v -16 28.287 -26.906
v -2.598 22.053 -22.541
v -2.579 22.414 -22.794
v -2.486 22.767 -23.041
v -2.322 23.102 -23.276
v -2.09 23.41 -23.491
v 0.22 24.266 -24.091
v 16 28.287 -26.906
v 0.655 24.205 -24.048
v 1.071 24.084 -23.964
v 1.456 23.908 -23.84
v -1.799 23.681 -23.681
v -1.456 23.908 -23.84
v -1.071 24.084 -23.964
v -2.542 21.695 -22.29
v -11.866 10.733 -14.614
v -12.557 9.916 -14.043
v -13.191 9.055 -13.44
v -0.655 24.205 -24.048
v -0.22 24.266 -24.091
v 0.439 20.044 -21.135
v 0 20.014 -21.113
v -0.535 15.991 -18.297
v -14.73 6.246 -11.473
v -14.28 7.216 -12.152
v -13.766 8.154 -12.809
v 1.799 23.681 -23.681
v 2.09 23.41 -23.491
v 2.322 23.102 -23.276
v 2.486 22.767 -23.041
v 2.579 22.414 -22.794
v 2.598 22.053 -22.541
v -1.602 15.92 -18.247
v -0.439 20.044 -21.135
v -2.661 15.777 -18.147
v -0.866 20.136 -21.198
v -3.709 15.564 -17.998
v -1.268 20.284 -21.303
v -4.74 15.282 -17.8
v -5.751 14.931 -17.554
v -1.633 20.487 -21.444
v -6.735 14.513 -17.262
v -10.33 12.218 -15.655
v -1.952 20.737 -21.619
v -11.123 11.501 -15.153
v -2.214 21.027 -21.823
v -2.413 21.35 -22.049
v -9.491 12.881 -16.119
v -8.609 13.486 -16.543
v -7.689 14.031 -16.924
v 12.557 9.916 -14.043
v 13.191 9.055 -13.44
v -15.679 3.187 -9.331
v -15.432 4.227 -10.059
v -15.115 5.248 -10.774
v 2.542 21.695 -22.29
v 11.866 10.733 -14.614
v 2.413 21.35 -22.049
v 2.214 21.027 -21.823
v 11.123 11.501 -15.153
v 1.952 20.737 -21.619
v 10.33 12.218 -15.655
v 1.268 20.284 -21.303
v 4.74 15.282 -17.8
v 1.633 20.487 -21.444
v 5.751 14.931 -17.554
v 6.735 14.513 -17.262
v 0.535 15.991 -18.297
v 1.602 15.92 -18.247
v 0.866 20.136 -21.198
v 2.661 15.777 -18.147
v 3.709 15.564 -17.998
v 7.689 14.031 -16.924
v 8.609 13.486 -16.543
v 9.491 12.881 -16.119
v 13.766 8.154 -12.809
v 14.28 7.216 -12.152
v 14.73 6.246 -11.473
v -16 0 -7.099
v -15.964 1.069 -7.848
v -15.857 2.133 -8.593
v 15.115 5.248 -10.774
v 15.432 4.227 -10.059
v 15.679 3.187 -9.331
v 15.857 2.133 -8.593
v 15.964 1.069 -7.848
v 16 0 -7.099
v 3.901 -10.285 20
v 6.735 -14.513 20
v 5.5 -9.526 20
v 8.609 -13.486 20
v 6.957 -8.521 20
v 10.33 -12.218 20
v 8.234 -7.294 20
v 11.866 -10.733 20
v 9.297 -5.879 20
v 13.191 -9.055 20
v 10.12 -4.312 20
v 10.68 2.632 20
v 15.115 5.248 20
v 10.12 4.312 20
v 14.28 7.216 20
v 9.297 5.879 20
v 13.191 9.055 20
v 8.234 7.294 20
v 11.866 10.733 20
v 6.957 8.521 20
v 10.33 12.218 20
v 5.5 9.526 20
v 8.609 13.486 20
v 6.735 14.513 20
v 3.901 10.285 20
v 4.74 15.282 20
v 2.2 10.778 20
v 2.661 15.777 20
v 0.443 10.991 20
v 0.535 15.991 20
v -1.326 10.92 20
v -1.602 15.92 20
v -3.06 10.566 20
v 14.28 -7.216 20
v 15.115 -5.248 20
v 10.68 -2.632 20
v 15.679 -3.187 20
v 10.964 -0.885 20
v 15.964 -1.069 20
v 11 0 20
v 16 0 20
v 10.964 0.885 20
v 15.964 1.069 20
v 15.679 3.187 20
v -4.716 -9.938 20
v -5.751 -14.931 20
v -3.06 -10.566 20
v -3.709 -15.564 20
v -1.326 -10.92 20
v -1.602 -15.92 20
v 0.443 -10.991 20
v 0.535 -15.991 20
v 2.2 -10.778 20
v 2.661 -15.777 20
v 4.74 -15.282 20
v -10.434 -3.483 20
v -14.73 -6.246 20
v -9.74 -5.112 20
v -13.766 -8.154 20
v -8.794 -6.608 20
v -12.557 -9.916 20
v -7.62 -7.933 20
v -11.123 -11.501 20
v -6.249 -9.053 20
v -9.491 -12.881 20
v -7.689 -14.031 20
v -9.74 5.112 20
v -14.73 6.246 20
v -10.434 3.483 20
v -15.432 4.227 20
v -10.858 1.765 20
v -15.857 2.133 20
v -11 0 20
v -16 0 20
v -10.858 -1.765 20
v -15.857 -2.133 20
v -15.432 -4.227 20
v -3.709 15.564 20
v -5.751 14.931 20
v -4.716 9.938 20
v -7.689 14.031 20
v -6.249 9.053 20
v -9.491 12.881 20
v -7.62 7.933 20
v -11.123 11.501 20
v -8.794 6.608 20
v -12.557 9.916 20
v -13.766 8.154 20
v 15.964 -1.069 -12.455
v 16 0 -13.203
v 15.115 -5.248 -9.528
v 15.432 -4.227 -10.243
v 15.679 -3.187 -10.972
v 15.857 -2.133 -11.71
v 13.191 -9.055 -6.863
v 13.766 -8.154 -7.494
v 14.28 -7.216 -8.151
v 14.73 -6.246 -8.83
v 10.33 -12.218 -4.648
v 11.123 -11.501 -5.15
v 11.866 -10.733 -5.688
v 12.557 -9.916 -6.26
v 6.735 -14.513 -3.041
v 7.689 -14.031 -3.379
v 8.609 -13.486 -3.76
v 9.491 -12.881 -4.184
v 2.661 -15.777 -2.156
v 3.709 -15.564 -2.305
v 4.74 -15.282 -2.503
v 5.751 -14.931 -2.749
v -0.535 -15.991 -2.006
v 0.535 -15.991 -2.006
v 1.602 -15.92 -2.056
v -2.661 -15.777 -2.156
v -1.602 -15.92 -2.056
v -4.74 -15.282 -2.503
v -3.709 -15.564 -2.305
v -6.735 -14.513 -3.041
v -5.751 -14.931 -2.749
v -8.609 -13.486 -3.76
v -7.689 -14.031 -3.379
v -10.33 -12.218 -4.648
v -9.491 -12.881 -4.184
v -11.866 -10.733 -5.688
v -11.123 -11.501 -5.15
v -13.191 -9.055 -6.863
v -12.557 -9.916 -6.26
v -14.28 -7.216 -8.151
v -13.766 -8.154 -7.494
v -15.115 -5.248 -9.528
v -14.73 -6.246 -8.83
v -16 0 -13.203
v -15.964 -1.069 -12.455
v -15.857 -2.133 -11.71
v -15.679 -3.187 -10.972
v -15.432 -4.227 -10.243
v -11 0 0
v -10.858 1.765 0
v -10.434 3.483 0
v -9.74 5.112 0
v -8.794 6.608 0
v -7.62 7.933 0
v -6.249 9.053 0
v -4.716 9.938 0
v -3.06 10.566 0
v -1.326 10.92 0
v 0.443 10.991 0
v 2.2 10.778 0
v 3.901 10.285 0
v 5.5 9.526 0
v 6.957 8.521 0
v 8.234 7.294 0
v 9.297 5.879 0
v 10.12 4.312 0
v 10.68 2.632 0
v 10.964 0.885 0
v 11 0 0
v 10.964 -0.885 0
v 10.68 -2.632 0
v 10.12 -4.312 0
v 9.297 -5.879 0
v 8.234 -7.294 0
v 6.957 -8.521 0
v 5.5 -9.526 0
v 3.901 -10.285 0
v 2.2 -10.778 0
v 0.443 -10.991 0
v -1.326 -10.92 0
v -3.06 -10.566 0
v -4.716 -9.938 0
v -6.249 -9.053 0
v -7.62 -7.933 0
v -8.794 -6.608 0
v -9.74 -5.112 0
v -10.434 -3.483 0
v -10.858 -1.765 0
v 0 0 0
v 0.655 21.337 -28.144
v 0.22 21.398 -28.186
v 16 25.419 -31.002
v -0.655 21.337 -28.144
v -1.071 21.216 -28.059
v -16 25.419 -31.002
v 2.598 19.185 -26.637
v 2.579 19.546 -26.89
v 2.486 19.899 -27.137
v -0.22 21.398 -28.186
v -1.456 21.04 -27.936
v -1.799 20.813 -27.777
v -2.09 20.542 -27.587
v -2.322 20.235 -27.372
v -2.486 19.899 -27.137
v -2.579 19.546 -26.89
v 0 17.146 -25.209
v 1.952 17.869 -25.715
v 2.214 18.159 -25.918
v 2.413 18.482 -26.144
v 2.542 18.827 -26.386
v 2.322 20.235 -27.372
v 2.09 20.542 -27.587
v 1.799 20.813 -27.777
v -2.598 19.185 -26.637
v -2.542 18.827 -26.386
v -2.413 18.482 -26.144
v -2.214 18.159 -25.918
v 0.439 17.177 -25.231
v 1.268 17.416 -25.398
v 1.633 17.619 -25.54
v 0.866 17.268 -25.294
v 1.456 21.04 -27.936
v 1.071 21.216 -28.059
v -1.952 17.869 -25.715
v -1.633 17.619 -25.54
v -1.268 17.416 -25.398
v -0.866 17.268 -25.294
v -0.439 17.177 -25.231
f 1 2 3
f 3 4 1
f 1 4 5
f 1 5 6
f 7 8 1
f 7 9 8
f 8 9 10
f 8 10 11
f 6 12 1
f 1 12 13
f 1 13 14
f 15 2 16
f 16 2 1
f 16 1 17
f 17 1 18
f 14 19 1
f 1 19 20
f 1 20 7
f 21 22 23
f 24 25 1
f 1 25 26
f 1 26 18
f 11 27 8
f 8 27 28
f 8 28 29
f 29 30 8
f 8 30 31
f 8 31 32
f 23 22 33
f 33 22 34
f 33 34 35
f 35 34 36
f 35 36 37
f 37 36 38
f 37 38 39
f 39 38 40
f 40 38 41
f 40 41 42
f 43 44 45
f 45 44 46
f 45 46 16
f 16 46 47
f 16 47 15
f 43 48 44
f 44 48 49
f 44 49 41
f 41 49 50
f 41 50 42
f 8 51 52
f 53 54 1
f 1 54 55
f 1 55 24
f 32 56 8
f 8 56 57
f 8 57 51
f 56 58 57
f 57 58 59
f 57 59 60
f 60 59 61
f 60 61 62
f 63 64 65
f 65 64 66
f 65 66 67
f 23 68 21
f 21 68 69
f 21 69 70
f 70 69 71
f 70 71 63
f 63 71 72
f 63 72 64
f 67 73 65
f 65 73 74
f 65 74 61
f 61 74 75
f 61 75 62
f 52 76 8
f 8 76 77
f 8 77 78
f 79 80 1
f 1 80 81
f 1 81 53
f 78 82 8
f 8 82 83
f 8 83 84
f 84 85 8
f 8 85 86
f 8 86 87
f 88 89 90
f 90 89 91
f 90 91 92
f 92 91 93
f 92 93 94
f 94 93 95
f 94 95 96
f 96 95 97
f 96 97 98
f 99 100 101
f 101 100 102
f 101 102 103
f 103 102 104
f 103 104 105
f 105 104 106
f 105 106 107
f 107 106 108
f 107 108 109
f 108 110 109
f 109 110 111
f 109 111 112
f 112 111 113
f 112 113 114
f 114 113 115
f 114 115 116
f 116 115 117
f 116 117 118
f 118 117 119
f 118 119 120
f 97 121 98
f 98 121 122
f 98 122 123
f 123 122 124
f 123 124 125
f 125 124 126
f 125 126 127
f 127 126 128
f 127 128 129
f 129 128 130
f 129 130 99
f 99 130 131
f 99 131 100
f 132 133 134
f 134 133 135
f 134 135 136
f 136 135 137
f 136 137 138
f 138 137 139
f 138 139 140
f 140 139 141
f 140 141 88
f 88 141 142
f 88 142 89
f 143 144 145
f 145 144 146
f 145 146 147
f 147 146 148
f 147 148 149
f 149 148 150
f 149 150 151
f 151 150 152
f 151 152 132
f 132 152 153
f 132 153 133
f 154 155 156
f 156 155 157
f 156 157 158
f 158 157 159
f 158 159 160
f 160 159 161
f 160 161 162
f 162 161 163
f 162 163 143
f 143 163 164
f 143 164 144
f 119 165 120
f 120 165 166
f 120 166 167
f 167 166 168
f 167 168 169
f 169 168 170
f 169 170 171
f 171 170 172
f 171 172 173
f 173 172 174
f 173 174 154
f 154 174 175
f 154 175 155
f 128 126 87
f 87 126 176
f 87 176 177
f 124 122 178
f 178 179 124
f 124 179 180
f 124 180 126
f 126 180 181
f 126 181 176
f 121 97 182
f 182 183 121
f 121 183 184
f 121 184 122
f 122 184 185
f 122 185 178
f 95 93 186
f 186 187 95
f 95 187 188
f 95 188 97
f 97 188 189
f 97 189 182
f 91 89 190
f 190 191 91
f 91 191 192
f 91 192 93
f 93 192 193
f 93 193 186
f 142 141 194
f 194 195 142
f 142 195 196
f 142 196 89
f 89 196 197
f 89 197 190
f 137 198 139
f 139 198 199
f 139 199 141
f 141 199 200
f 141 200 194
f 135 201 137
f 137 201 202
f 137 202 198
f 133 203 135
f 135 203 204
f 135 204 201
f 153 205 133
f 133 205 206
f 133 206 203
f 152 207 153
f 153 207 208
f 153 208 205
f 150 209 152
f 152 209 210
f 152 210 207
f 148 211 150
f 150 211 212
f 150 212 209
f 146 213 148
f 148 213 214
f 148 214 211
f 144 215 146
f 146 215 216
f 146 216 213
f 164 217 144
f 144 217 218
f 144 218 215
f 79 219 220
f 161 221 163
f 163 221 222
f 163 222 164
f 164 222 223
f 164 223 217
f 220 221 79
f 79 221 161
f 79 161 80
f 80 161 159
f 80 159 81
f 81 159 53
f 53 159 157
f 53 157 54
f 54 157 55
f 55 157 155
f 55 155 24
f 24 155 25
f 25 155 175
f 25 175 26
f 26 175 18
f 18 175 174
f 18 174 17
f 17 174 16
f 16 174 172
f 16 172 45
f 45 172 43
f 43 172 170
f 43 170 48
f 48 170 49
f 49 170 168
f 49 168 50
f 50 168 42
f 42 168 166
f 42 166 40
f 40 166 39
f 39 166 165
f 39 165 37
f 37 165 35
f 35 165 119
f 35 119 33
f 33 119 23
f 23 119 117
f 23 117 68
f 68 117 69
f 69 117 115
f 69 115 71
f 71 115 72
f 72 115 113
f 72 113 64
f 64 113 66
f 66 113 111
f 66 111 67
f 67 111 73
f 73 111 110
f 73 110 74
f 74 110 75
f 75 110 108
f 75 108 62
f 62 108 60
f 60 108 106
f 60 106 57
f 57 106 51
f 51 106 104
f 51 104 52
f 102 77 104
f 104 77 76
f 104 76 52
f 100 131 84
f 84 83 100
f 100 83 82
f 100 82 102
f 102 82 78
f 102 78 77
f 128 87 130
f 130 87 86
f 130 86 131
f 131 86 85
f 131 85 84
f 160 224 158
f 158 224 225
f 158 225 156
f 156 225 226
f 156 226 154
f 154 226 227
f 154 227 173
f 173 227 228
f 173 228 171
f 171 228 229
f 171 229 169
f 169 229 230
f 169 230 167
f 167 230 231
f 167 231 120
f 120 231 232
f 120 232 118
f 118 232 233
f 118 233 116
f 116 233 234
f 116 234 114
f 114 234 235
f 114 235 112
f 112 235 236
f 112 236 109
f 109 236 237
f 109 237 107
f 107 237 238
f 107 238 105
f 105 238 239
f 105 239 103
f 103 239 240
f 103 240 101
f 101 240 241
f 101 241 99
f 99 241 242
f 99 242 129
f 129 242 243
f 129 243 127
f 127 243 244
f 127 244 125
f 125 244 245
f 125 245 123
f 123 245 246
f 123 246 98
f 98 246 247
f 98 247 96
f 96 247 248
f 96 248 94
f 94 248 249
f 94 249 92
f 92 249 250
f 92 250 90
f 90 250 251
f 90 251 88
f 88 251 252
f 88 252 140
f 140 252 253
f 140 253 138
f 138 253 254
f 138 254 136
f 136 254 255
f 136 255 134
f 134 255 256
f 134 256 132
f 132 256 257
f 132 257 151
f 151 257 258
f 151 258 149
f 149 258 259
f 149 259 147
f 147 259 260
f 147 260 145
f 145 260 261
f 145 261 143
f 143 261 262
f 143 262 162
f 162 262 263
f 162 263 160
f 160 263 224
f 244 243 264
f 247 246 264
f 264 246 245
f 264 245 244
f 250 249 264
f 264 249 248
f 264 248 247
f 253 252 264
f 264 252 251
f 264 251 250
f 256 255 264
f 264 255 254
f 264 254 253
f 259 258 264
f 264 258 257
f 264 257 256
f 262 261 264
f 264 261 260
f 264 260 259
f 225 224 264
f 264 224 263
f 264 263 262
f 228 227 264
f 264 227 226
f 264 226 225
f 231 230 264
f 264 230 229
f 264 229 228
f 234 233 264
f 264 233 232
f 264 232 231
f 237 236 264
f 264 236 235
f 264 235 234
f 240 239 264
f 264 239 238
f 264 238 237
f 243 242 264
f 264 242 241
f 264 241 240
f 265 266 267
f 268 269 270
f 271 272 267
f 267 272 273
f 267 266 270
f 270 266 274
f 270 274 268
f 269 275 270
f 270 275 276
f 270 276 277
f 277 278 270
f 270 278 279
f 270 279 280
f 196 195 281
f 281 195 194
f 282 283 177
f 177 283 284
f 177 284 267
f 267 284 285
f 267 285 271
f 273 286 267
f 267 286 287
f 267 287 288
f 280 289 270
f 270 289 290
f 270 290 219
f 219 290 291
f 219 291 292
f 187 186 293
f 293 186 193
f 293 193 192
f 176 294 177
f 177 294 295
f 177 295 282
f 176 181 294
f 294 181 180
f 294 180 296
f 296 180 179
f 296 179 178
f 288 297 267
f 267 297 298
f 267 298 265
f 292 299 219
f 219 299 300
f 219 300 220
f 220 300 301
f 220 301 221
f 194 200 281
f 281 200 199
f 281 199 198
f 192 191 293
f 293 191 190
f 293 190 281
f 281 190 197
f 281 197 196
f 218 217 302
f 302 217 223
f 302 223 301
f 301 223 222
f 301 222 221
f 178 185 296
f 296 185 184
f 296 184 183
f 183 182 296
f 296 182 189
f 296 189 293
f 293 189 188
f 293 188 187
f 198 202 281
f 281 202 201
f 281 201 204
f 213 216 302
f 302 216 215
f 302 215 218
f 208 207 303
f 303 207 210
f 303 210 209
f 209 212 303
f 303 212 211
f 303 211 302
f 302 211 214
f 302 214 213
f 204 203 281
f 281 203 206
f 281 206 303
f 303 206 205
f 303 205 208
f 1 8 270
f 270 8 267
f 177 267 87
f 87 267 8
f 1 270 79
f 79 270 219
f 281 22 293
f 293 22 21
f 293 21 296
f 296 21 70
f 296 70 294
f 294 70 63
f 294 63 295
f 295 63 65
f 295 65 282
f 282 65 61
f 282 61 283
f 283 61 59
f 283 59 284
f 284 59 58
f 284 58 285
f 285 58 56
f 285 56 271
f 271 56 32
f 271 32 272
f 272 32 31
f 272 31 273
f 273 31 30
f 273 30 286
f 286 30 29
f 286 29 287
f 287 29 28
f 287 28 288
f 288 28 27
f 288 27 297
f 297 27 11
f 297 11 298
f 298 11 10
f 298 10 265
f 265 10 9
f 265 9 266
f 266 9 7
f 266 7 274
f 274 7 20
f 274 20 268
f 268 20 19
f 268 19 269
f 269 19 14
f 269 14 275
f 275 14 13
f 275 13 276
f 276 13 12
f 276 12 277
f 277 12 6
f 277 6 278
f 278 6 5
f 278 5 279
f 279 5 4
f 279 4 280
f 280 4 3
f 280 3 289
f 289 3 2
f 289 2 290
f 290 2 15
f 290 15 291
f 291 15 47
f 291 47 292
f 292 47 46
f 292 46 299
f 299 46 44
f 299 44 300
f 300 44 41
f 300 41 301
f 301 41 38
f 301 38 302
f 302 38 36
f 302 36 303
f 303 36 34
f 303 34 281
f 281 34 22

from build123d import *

# Parameters (mm, degrees)
SKETCH1_R                = 16
SKETCH1_R_2              = 11
BOSS_EXTRUDE1_DEPTH      = 20
SKETCH2_R                = 16
BOSS_EXTRUDE2_DEPTH      = 2
BOSS_EXTRUDE3_DEPTH      = 16
BOSS_EXTRUDE3_DEPTH_BACK = 16
CUT_EXTRUDE1_DEPTH       = 30.002175046
BOSS_EXTRUDE4_REACH      = 31.002
SKETCH5_R                = 16
SKETCH6_R                = 2.6
CUT_EXTRUDE3_DEPTH       = 29.757190977


with BuildPart() as part:
    # Sketch1 → Boss-Extrude1 (new body)
    with BuildSketch(Plane.XY):
        Circle(SKETCH1_R)
        Circle(SKETCH1_R_2, mode=Mode.SUBTRACT)
    extrude(amount=BOSS_EXTRUDE1_DEPTH)

    # Sketch2 → Boss-Extrude2 (add)
    with BuildSketch(Plane(origin=(0, 0, 0), x_dir=(-1, 0, 0), z_dir=(0, 0, -1))):
        Circle(SKETCH2_R)
    extrude(amount=BOSS_EXTRUDE2_DEPTH)

    # Sketch3 → Boss-Extrude3 (add, two sides)
    with BuildSketch(Plane(origin=(0, 0, 0), x_dir=(0, 0, -1), z_dir=(1, 0, 0))) as boss_extrude3_sk:
        Polygon((31.002175046, 25.419398483), (26.906414824, 28.287280664), (18.302768279, 16), (2, -7.282766022), (2, -16), align=None)
    extrude(amount=BOSS_EXTRUDE3_DEPTH)
    extrude(boss_extrude3_sk.sketch, amount=-BOSS_EXTRUDE3_DEPTH_BACK)

    # Sketch4 → Cut-Extrude1 (cut, through all)
    with BuildSketch(Plane(origin=(0, 0, -2), x_dir=(-1, 0, 0), z_dir=(0, 0, -1))):
        with BuildLine():
            Line((34.266518051, 0), (16, 0))
            ThreePointArc((16, 0), (15.555436181, -3.745451268), (14.24644935, -7.282766022))
            ThreePointArc((14.24644935, -7.282766022), (0, -16), (-14.24644935, -7.282766022))
            ThreePointArc((-14.24644935, -7.282766022), (-15.555436181, -3.745451268), (-16, 0))
            Line((-16, 0), (-34.430612934, 0))
            Line((-34.430612934, 0), (-36.46308972, -20.488677285))
            Line((-36.46308972, -20.488677285), (32.179774964, -27.298049462))
            Line((32.179774964, -27.298049462), (34.266518051, 0))
        make_face()
    extrude(amount=CUT_EXTRUDE1_DEPTH, mode=Mode.SUBTRACT)

    # Sketch5 → Boss-Extrude4 (add, up to next)
    with BuildSketch(Plane(origin=(0, 0, -2), x_dir=(-1, 0, 0), z_dir=(0, 0, -1)), mode=Mode.PRIVATE) as boss_extrude4_sk1:
        Circle(SKETCH5_R)
    boss_extrude4_tool1 = extrude(boss_extrude4_sk1.sketch, amount=BOSS_EXTRUDE4_REACH, mode=Mode.PRIVATE) - part.part
    add(boss_extrude4_tool1.solids().sort_by_distance((0, 0, -2))[0])

    # Sketch6 → Cut-Extrude3 (cut, through all)
    with BuildSketch(Plane(origin=(0, -3.335649292, -4.763800888), x_dir=(1, 0, 0), z_dir=(0, 0.573576436, 0.819152044))):
        with Locations((0, 31.104469313)):
            Circle(SKETCH6_R)
    extrude(amount=-CUT_EXTRUDE3_DEPTH, mode=Mode.SUBTRACT)


solid = part.part
